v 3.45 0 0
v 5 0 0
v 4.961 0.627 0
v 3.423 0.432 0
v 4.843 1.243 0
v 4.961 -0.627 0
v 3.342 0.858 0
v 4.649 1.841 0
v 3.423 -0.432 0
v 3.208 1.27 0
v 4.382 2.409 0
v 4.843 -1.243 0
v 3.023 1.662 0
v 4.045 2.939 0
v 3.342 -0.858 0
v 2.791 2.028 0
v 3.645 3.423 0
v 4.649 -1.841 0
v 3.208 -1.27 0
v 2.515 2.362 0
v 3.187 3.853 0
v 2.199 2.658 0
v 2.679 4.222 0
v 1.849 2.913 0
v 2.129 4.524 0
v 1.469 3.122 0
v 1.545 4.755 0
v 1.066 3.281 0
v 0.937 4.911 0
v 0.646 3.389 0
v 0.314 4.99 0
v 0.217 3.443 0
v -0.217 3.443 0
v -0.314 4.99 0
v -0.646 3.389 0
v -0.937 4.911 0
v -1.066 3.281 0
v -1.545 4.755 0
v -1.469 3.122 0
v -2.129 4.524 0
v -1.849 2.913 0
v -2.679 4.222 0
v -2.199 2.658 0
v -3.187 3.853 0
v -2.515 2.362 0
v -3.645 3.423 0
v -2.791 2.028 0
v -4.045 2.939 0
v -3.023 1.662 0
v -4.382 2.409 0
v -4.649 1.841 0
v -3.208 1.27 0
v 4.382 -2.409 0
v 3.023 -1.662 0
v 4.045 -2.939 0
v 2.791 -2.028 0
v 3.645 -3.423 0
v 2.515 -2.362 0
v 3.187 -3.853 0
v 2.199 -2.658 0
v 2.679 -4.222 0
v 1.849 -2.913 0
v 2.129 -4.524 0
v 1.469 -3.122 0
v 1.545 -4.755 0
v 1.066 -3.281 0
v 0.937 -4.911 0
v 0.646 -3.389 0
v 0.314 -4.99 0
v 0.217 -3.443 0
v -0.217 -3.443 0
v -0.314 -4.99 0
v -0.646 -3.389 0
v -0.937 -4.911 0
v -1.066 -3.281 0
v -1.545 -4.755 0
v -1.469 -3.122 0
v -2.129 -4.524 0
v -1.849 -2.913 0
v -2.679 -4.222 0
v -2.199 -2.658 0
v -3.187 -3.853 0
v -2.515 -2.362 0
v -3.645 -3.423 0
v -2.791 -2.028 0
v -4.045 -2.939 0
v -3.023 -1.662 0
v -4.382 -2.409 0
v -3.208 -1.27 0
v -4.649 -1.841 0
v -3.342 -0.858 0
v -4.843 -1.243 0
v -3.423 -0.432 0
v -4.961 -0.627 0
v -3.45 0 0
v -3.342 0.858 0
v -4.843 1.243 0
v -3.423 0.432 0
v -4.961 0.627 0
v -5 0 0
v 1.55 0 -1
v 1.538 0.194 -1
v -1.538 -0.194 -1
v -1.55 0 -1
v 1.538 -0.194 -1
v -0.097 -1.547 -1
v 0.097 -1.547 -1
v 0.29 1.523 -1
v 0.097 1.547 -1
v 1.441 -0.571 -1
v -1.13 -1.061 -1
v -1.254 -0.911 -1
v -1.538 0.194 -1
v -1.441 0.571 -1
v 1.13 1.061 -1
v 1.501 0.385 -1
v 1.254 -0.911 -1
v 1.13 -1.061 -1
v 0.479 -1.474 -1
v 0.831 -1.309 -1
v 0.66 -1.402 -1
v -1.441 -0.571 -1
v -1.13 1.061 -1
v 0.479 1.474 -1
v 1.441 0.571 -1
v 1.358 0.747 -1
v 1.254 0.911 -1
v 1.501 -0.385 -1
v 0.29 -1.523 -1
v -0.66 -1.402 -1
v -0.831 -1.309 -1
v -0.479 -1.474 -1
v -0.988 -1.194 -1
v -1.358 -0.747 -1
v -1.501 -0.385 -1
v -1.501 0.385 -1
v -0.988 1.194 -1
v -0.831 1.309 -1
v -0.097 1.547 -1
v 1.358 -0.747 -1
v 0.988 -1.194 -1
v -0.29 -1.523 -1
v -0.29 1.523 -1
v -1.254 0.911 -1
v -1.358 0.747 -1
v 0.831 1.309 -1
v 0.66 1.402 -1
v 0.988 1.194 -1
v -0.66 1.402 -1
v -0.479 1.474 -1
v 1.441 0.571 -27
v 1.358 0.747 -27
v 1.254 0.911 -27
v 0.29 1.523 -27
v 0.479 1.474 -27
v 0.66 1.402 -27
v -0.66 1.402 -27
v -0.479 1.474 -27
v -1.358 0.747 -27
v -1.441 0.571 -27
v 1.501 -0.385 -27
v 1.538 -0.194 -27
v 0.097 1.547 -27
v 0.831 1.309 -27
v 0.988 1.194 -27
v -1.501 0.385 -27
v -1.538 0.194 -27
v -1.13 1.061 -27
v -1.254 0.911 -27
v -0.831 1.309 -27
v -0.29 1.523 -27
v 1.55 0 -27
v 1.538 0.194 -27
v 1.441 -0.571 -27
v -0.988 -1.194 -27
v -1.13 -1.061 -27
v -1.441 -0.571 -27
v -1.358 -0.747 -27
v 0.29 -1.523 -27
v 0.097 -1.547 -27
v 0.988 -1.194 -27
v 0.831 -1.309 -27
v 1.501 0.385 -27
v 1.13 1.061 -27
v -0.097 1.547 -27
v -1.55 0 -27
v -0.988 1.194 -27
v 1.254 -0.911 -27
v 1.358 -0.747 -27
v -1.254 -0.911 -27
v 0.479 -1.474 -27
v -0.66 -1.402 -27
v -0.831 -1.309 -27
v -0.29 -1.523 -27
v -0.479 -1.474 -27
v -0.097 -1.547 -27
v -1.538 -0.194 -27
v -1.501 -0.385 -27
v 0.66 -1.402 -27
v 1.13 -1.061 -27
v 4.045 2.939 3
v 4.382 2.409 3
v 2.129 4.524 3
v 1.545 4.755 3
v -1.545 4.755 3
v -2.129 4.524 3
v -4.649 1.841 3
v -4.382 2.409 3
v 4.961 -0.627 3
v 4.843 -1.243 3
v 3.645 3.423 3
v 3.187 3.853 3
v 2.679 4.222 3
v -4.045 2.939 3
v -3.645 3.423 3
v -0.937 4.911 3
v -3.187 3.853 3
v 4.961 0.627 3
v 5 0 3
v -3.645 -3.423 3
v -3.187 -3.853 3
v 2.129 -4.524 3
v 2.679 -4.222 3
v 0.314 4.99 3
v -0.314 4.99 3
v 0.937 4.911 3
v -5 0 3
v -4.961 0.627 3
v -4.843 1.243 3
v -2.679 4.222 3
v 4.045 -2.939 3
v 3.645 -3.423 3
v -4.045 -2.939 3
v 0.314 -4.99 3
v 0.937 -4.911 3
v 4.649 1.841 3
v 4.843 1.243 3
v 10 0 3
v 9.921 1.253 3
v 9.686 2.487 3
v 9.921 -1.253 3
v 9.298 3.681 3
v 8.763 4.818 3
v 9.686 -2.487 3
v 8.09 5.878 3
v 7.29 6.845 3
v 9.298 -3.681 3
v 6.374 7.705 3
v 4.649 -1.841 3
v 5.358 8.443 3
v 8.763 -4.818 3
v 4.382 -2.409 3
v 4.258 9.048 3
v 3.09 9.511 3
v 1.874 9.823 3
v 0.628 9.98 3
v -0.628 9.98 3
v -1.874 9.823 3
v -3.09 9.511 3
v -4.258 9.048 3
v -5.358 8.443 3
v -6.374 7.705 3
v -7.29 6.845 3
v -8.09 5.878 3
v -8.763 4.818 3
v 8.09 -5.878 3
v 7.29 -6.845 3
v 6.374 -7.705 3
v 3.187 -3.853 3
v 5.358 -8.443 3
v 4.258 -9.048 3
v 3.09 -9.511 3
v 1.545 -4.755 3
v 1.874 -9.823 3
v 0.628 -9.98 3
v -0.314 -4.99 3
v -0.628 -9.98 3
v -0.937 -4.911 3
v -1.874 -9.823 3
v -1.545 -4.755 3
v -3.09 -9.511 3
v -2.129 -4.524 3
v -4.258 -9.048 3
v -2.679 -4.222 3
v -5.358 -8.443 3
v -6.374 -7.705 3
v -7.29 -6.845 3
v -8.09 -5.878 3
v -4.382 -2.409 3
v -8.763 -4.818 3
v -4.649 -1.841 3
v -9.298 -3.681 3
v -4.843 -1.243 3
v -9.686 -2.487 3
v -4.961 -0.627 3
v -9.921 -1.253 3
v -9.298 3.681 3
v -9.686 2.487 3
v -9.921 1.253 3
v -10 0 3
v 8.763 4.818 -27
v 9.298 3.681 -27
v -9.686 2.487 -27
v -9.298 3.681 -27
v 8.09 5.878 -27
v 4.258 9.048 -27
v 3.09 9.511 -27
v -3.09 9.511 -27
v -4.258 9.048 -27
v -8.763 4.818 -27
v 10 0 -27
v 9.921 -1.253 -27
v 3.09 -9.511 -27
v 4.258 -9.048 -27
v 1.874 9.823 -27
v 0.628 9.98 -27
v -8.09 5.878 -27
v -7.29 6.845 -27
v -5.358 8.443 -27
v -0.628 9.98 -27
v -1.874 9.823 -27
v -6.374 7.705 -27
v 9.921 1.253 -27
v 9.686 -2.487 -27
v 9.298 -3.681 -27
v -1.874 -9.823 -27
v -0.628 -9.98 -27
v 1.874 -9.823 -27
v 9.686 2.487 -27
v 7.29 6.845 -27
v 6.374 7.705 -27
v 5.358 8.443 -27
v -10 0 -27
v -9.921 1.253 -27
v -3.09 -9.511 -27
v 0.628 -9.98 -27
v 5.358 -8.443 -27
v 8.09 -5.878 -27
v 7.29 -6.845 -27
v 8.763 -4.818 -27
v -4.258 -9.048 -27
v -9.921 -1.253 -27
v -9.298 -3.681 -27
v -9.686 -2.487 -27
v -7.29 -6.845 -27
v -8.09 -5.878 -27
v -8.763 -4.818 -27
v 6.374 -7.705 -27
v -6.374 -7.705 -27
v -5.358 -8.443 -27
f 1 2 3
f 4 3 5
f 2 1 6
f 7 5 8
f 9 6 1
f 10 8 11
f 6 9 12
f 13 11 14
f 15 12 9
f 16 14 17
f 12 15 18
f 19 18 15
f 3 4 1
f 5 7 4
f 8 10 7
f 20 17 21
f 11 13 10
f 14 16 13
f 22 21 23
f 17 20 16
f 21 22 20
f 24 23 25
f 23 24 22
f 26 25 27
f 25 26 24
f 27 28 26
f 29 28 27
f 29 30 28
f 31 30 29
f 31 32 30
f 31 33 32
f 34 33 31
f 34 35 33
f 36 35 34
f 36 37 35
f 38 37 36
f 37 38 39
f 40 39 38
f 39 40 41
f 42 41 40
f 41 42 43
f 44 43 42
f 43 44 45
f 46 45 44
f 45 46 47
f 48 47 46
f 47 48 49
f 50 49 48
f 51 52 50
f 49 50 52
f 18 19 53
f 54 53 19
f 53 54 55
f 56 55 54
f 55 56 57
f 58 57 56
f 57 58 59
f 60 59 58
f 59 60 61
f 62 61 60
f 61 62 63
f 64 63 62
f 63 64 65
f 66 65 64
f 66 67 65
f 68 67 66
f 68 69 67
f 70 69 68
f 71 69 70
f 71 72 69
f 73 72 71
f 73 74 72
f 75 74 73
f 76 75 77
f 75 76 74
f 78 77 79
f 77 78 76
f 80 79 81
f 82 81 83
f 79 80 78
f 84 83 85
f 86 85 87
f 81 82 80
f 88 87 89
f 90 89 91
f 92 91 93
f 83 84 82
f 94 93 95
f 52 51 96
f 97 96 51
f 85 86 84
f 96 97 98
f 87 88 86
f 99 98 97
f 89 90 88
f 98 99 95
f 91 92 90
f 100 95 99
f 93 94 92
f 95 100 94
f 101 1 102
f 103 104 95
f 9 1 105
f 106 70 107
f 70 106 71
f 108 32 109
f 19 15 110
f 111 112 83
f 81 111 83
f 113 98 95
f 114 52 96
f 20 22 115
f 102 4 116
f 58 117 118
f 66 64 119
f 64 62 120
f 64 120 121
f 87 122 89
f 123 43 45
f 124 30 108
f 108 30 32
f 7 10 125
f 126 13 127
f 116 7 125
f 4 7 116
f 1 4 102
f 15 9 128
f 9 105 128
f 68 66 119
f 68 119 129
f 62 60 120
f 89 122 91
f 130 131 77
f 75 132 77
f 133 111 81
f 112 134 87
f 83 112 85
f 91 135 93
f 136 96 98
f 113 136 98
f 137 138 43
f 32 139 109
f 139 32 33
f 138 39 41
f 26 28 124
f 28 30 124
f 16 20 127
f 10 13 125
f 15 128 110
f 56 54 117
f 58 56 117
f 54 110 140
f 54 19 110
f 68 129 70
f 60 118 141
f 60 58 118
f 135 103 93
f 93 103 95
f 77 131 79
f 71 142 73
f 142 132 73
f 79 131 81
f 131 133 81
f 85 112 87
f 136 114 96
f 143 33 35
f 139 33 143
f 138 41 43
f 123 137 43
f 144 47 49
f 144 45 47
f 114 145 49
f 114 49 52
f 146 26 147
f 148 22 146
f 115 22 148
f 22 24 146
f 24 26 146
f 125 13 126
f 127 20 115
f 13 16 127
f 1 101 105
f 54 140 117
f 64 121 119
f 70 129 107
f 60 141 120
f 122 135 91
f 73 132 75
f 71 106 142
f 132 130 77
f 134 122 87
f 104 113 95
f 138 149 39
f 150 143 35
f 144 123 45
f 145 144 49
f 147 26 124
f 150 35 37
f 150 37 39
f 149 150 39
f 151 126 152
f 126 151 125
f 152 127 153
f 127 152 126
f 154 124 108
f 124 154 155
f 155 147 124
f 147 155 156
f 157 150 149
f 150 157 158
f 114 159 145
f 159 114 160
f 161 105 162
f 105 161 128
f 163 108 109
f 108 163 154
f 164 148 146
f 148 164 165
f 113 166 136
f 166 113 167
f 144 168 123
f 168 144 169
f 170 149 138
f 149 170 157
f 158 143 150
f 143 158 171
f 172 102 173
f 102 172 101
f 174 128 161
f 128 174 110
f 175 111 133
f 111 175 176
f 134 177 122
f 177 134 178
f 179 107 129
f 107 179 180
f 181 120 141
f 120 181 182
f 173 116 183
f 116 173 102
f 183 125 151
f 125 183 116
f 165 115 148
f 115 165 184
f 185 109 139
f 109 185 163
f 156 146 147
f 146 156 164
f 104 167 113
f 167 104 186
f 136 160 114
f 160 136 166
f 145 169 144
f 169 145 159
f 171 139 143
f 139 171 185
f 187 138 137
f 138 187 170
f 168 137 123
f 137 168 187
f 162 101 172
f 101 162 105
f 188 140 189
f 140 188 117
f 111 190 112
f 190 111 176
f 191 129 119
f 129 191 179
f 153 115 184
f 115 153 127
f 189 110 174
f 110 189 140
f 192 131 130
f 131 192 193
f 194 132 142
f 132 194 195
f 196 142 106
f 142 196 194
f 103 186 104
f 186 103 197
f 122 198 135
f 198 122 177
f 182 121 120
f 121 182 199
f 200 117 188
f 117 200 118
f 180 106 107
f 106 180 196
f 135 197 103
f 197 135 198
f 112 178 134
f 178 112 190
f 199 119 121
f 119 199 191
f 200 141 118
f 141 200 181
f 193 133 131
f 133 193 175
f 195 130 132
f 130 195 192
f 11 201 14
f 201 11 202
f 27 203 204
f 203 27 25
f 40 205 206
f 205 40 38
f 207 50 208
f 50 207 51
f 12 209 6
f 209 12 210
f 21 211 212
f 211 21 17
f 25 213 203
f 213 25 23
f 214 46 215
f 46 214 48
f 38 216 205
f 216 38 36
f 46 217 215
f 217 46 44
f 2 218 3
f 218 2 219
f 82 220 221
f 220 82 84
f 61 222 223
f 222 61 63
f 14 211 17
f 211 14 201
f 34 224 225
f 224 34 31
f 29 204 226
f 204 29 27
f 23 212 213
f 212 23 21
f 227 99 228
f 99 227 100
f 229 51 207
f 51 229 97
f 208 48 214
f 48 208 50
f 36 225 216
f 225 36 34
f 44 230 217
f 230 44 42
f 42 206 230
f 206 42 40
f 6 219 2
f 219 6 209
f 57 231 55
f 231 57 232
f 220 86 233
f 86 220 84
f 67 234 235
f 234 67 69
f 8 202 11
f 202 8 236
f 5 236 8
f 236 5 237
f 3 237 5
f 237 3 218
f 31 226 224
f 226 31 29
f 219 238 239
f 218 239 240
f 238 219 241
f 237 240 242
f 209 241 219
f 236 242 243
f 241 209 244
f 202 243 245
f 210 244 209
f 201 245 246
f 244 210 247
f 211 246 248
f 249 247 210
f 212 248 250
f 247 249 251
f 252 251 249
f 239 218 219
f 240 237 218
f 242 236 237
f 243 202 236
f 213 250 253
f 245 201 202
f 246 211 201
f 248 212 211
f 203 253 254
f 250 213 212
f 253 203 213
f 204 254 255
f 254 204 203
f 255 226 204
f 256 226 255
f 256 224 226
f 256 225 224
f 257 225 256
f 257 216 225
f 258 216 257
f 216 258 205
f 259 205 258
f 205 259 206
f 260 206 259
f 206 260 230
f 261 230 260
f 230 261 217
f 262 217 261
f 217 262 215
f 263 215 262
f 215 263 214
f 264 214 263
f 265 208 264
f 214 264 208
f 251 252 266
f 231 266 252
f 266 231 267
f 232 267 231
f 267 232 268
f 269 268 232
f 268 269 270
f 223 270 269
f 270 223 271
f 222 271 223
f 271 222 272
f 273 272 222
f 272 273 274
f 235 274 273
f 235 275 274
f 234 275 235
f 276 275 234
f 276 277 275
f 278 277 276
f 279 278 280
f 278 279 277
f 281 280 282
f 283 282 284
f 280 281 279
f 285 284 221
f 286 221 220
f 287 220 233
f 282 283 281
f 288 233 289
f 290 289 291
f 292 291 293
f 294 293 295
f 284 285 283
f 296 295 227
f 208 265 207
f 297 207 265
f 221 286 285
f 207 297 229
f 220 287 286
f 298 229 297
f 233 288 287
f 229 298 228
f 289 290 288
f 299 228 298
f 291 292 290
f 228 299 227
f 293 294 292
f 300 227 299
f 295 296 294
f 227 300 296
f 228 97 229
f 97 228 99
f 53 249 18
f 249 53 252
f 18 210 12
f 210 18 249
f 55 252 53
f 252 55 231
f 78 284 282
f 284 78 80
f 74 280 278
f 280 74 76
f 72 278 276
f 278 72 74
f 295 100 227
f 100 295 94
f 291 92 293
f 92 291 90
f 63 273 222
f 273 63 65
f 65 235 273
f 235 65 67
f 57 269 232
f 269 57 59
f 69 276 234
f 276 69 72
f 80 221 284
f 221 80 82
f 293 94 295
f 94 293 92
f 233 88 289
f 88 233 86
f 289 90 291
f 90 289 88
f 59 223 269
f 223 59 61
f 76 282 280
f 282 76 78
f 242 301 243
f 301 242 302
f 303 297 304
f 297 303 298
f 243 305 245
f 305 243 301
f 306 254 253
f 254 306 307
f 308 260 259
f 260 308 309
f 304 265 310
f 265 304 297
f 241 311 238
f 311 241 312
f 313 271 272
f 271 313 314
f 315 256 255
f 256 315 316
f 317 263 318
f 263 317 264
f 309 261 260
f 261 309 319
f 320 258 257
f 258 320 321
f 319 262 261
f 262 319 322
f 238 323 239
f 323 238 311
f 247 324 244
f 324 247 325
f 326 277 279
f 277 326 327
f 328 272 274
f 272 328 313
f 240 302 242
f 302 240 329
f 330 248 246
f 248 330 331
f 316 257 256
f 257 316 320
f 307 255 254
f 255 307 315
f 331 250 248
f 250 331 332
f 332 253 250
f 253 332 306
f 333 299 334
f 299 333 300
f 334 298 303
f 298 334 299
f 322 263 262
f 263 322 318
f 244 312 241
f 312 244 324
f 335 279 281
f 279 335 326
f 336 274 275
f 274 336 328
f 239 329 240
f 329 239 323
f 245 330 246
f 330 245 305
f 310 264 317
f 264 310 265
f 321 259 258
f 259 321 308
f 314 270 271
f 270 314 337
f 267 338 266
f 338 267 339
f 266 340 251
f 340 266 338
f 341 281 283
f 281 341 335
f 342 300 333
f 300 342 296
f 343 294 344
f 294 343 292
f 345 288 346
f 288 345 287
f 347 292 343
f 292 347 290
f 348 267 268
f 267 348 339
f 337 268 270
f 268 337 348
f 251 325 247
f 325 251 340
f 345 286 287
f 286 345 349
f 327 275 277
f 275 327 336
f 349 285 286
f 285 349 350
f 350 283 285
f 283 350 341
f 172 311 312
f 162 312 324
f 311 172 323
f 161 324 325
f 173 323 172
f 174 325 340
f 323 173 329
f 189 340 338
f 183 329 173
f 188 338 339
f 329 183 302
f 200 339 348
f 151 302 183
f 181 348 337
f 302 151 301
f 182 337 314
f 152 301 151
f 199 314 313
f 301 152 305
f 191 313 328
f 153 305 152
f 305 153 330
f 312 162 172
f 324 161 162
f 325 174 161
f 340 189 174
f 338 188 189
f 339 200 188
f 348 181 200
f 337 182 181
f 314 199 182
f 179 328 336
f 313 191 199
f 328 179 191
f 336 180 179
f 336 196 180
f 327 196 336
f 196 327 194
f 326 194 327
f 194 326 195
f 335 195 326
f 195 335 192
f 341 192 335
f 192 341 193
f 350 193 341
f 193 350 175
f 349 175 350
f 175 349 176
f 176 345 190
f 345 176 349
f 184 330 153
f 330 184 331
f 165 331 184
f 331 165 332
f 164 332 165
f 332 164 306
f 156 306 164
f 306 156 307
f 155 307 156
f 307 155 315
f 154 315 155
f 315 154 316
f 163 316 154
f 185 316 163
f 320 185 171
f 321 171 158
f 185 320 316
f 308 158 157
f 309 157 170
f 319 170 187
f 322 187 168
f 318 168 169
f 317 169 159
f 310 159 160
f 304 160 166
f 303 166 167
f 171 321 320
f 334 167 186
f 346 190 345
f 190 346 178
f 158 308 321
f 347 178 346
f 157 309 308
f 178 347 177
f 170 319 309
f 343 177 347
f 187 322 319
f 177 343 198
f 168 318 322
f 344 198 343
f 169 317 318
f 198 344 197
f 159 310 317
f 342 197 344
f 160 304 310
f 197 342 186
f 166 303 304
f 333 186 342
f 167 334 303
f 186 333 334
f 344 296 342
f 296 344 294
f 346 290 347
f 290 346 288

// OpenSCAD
$fn = 50;

difference() {
	union() {
		translate(v = [0, 0, -27.0]) {
			cylinder(h = 30, r = 10.0);
		}
	}
	union() {
		translate(v = [0, 0, 0]) {
			rotate(a = [0, 0, 0]) {
				difference() {
					union() {
						translate(v = [0, 0, -30.0]) {
							cylinder(h = 30, r = 1.25);
						}
						translate(v = [0, 0, -1.0]) {
							cylinder(h = 1.0, r1 = 1.55, r2 = 3.45);
						}
						translate(v = [0, 0, -30.0]) {
							cylinder(h = 30, r = 1.55);
						}
						translate(v = [0, 0, -30.0]) {
							cylinder(h = 30, r = 1.25);
						}
					}
					union();
				}
			}
		}
		#cylinder(h = 3, r = 5.0);
	}
}
